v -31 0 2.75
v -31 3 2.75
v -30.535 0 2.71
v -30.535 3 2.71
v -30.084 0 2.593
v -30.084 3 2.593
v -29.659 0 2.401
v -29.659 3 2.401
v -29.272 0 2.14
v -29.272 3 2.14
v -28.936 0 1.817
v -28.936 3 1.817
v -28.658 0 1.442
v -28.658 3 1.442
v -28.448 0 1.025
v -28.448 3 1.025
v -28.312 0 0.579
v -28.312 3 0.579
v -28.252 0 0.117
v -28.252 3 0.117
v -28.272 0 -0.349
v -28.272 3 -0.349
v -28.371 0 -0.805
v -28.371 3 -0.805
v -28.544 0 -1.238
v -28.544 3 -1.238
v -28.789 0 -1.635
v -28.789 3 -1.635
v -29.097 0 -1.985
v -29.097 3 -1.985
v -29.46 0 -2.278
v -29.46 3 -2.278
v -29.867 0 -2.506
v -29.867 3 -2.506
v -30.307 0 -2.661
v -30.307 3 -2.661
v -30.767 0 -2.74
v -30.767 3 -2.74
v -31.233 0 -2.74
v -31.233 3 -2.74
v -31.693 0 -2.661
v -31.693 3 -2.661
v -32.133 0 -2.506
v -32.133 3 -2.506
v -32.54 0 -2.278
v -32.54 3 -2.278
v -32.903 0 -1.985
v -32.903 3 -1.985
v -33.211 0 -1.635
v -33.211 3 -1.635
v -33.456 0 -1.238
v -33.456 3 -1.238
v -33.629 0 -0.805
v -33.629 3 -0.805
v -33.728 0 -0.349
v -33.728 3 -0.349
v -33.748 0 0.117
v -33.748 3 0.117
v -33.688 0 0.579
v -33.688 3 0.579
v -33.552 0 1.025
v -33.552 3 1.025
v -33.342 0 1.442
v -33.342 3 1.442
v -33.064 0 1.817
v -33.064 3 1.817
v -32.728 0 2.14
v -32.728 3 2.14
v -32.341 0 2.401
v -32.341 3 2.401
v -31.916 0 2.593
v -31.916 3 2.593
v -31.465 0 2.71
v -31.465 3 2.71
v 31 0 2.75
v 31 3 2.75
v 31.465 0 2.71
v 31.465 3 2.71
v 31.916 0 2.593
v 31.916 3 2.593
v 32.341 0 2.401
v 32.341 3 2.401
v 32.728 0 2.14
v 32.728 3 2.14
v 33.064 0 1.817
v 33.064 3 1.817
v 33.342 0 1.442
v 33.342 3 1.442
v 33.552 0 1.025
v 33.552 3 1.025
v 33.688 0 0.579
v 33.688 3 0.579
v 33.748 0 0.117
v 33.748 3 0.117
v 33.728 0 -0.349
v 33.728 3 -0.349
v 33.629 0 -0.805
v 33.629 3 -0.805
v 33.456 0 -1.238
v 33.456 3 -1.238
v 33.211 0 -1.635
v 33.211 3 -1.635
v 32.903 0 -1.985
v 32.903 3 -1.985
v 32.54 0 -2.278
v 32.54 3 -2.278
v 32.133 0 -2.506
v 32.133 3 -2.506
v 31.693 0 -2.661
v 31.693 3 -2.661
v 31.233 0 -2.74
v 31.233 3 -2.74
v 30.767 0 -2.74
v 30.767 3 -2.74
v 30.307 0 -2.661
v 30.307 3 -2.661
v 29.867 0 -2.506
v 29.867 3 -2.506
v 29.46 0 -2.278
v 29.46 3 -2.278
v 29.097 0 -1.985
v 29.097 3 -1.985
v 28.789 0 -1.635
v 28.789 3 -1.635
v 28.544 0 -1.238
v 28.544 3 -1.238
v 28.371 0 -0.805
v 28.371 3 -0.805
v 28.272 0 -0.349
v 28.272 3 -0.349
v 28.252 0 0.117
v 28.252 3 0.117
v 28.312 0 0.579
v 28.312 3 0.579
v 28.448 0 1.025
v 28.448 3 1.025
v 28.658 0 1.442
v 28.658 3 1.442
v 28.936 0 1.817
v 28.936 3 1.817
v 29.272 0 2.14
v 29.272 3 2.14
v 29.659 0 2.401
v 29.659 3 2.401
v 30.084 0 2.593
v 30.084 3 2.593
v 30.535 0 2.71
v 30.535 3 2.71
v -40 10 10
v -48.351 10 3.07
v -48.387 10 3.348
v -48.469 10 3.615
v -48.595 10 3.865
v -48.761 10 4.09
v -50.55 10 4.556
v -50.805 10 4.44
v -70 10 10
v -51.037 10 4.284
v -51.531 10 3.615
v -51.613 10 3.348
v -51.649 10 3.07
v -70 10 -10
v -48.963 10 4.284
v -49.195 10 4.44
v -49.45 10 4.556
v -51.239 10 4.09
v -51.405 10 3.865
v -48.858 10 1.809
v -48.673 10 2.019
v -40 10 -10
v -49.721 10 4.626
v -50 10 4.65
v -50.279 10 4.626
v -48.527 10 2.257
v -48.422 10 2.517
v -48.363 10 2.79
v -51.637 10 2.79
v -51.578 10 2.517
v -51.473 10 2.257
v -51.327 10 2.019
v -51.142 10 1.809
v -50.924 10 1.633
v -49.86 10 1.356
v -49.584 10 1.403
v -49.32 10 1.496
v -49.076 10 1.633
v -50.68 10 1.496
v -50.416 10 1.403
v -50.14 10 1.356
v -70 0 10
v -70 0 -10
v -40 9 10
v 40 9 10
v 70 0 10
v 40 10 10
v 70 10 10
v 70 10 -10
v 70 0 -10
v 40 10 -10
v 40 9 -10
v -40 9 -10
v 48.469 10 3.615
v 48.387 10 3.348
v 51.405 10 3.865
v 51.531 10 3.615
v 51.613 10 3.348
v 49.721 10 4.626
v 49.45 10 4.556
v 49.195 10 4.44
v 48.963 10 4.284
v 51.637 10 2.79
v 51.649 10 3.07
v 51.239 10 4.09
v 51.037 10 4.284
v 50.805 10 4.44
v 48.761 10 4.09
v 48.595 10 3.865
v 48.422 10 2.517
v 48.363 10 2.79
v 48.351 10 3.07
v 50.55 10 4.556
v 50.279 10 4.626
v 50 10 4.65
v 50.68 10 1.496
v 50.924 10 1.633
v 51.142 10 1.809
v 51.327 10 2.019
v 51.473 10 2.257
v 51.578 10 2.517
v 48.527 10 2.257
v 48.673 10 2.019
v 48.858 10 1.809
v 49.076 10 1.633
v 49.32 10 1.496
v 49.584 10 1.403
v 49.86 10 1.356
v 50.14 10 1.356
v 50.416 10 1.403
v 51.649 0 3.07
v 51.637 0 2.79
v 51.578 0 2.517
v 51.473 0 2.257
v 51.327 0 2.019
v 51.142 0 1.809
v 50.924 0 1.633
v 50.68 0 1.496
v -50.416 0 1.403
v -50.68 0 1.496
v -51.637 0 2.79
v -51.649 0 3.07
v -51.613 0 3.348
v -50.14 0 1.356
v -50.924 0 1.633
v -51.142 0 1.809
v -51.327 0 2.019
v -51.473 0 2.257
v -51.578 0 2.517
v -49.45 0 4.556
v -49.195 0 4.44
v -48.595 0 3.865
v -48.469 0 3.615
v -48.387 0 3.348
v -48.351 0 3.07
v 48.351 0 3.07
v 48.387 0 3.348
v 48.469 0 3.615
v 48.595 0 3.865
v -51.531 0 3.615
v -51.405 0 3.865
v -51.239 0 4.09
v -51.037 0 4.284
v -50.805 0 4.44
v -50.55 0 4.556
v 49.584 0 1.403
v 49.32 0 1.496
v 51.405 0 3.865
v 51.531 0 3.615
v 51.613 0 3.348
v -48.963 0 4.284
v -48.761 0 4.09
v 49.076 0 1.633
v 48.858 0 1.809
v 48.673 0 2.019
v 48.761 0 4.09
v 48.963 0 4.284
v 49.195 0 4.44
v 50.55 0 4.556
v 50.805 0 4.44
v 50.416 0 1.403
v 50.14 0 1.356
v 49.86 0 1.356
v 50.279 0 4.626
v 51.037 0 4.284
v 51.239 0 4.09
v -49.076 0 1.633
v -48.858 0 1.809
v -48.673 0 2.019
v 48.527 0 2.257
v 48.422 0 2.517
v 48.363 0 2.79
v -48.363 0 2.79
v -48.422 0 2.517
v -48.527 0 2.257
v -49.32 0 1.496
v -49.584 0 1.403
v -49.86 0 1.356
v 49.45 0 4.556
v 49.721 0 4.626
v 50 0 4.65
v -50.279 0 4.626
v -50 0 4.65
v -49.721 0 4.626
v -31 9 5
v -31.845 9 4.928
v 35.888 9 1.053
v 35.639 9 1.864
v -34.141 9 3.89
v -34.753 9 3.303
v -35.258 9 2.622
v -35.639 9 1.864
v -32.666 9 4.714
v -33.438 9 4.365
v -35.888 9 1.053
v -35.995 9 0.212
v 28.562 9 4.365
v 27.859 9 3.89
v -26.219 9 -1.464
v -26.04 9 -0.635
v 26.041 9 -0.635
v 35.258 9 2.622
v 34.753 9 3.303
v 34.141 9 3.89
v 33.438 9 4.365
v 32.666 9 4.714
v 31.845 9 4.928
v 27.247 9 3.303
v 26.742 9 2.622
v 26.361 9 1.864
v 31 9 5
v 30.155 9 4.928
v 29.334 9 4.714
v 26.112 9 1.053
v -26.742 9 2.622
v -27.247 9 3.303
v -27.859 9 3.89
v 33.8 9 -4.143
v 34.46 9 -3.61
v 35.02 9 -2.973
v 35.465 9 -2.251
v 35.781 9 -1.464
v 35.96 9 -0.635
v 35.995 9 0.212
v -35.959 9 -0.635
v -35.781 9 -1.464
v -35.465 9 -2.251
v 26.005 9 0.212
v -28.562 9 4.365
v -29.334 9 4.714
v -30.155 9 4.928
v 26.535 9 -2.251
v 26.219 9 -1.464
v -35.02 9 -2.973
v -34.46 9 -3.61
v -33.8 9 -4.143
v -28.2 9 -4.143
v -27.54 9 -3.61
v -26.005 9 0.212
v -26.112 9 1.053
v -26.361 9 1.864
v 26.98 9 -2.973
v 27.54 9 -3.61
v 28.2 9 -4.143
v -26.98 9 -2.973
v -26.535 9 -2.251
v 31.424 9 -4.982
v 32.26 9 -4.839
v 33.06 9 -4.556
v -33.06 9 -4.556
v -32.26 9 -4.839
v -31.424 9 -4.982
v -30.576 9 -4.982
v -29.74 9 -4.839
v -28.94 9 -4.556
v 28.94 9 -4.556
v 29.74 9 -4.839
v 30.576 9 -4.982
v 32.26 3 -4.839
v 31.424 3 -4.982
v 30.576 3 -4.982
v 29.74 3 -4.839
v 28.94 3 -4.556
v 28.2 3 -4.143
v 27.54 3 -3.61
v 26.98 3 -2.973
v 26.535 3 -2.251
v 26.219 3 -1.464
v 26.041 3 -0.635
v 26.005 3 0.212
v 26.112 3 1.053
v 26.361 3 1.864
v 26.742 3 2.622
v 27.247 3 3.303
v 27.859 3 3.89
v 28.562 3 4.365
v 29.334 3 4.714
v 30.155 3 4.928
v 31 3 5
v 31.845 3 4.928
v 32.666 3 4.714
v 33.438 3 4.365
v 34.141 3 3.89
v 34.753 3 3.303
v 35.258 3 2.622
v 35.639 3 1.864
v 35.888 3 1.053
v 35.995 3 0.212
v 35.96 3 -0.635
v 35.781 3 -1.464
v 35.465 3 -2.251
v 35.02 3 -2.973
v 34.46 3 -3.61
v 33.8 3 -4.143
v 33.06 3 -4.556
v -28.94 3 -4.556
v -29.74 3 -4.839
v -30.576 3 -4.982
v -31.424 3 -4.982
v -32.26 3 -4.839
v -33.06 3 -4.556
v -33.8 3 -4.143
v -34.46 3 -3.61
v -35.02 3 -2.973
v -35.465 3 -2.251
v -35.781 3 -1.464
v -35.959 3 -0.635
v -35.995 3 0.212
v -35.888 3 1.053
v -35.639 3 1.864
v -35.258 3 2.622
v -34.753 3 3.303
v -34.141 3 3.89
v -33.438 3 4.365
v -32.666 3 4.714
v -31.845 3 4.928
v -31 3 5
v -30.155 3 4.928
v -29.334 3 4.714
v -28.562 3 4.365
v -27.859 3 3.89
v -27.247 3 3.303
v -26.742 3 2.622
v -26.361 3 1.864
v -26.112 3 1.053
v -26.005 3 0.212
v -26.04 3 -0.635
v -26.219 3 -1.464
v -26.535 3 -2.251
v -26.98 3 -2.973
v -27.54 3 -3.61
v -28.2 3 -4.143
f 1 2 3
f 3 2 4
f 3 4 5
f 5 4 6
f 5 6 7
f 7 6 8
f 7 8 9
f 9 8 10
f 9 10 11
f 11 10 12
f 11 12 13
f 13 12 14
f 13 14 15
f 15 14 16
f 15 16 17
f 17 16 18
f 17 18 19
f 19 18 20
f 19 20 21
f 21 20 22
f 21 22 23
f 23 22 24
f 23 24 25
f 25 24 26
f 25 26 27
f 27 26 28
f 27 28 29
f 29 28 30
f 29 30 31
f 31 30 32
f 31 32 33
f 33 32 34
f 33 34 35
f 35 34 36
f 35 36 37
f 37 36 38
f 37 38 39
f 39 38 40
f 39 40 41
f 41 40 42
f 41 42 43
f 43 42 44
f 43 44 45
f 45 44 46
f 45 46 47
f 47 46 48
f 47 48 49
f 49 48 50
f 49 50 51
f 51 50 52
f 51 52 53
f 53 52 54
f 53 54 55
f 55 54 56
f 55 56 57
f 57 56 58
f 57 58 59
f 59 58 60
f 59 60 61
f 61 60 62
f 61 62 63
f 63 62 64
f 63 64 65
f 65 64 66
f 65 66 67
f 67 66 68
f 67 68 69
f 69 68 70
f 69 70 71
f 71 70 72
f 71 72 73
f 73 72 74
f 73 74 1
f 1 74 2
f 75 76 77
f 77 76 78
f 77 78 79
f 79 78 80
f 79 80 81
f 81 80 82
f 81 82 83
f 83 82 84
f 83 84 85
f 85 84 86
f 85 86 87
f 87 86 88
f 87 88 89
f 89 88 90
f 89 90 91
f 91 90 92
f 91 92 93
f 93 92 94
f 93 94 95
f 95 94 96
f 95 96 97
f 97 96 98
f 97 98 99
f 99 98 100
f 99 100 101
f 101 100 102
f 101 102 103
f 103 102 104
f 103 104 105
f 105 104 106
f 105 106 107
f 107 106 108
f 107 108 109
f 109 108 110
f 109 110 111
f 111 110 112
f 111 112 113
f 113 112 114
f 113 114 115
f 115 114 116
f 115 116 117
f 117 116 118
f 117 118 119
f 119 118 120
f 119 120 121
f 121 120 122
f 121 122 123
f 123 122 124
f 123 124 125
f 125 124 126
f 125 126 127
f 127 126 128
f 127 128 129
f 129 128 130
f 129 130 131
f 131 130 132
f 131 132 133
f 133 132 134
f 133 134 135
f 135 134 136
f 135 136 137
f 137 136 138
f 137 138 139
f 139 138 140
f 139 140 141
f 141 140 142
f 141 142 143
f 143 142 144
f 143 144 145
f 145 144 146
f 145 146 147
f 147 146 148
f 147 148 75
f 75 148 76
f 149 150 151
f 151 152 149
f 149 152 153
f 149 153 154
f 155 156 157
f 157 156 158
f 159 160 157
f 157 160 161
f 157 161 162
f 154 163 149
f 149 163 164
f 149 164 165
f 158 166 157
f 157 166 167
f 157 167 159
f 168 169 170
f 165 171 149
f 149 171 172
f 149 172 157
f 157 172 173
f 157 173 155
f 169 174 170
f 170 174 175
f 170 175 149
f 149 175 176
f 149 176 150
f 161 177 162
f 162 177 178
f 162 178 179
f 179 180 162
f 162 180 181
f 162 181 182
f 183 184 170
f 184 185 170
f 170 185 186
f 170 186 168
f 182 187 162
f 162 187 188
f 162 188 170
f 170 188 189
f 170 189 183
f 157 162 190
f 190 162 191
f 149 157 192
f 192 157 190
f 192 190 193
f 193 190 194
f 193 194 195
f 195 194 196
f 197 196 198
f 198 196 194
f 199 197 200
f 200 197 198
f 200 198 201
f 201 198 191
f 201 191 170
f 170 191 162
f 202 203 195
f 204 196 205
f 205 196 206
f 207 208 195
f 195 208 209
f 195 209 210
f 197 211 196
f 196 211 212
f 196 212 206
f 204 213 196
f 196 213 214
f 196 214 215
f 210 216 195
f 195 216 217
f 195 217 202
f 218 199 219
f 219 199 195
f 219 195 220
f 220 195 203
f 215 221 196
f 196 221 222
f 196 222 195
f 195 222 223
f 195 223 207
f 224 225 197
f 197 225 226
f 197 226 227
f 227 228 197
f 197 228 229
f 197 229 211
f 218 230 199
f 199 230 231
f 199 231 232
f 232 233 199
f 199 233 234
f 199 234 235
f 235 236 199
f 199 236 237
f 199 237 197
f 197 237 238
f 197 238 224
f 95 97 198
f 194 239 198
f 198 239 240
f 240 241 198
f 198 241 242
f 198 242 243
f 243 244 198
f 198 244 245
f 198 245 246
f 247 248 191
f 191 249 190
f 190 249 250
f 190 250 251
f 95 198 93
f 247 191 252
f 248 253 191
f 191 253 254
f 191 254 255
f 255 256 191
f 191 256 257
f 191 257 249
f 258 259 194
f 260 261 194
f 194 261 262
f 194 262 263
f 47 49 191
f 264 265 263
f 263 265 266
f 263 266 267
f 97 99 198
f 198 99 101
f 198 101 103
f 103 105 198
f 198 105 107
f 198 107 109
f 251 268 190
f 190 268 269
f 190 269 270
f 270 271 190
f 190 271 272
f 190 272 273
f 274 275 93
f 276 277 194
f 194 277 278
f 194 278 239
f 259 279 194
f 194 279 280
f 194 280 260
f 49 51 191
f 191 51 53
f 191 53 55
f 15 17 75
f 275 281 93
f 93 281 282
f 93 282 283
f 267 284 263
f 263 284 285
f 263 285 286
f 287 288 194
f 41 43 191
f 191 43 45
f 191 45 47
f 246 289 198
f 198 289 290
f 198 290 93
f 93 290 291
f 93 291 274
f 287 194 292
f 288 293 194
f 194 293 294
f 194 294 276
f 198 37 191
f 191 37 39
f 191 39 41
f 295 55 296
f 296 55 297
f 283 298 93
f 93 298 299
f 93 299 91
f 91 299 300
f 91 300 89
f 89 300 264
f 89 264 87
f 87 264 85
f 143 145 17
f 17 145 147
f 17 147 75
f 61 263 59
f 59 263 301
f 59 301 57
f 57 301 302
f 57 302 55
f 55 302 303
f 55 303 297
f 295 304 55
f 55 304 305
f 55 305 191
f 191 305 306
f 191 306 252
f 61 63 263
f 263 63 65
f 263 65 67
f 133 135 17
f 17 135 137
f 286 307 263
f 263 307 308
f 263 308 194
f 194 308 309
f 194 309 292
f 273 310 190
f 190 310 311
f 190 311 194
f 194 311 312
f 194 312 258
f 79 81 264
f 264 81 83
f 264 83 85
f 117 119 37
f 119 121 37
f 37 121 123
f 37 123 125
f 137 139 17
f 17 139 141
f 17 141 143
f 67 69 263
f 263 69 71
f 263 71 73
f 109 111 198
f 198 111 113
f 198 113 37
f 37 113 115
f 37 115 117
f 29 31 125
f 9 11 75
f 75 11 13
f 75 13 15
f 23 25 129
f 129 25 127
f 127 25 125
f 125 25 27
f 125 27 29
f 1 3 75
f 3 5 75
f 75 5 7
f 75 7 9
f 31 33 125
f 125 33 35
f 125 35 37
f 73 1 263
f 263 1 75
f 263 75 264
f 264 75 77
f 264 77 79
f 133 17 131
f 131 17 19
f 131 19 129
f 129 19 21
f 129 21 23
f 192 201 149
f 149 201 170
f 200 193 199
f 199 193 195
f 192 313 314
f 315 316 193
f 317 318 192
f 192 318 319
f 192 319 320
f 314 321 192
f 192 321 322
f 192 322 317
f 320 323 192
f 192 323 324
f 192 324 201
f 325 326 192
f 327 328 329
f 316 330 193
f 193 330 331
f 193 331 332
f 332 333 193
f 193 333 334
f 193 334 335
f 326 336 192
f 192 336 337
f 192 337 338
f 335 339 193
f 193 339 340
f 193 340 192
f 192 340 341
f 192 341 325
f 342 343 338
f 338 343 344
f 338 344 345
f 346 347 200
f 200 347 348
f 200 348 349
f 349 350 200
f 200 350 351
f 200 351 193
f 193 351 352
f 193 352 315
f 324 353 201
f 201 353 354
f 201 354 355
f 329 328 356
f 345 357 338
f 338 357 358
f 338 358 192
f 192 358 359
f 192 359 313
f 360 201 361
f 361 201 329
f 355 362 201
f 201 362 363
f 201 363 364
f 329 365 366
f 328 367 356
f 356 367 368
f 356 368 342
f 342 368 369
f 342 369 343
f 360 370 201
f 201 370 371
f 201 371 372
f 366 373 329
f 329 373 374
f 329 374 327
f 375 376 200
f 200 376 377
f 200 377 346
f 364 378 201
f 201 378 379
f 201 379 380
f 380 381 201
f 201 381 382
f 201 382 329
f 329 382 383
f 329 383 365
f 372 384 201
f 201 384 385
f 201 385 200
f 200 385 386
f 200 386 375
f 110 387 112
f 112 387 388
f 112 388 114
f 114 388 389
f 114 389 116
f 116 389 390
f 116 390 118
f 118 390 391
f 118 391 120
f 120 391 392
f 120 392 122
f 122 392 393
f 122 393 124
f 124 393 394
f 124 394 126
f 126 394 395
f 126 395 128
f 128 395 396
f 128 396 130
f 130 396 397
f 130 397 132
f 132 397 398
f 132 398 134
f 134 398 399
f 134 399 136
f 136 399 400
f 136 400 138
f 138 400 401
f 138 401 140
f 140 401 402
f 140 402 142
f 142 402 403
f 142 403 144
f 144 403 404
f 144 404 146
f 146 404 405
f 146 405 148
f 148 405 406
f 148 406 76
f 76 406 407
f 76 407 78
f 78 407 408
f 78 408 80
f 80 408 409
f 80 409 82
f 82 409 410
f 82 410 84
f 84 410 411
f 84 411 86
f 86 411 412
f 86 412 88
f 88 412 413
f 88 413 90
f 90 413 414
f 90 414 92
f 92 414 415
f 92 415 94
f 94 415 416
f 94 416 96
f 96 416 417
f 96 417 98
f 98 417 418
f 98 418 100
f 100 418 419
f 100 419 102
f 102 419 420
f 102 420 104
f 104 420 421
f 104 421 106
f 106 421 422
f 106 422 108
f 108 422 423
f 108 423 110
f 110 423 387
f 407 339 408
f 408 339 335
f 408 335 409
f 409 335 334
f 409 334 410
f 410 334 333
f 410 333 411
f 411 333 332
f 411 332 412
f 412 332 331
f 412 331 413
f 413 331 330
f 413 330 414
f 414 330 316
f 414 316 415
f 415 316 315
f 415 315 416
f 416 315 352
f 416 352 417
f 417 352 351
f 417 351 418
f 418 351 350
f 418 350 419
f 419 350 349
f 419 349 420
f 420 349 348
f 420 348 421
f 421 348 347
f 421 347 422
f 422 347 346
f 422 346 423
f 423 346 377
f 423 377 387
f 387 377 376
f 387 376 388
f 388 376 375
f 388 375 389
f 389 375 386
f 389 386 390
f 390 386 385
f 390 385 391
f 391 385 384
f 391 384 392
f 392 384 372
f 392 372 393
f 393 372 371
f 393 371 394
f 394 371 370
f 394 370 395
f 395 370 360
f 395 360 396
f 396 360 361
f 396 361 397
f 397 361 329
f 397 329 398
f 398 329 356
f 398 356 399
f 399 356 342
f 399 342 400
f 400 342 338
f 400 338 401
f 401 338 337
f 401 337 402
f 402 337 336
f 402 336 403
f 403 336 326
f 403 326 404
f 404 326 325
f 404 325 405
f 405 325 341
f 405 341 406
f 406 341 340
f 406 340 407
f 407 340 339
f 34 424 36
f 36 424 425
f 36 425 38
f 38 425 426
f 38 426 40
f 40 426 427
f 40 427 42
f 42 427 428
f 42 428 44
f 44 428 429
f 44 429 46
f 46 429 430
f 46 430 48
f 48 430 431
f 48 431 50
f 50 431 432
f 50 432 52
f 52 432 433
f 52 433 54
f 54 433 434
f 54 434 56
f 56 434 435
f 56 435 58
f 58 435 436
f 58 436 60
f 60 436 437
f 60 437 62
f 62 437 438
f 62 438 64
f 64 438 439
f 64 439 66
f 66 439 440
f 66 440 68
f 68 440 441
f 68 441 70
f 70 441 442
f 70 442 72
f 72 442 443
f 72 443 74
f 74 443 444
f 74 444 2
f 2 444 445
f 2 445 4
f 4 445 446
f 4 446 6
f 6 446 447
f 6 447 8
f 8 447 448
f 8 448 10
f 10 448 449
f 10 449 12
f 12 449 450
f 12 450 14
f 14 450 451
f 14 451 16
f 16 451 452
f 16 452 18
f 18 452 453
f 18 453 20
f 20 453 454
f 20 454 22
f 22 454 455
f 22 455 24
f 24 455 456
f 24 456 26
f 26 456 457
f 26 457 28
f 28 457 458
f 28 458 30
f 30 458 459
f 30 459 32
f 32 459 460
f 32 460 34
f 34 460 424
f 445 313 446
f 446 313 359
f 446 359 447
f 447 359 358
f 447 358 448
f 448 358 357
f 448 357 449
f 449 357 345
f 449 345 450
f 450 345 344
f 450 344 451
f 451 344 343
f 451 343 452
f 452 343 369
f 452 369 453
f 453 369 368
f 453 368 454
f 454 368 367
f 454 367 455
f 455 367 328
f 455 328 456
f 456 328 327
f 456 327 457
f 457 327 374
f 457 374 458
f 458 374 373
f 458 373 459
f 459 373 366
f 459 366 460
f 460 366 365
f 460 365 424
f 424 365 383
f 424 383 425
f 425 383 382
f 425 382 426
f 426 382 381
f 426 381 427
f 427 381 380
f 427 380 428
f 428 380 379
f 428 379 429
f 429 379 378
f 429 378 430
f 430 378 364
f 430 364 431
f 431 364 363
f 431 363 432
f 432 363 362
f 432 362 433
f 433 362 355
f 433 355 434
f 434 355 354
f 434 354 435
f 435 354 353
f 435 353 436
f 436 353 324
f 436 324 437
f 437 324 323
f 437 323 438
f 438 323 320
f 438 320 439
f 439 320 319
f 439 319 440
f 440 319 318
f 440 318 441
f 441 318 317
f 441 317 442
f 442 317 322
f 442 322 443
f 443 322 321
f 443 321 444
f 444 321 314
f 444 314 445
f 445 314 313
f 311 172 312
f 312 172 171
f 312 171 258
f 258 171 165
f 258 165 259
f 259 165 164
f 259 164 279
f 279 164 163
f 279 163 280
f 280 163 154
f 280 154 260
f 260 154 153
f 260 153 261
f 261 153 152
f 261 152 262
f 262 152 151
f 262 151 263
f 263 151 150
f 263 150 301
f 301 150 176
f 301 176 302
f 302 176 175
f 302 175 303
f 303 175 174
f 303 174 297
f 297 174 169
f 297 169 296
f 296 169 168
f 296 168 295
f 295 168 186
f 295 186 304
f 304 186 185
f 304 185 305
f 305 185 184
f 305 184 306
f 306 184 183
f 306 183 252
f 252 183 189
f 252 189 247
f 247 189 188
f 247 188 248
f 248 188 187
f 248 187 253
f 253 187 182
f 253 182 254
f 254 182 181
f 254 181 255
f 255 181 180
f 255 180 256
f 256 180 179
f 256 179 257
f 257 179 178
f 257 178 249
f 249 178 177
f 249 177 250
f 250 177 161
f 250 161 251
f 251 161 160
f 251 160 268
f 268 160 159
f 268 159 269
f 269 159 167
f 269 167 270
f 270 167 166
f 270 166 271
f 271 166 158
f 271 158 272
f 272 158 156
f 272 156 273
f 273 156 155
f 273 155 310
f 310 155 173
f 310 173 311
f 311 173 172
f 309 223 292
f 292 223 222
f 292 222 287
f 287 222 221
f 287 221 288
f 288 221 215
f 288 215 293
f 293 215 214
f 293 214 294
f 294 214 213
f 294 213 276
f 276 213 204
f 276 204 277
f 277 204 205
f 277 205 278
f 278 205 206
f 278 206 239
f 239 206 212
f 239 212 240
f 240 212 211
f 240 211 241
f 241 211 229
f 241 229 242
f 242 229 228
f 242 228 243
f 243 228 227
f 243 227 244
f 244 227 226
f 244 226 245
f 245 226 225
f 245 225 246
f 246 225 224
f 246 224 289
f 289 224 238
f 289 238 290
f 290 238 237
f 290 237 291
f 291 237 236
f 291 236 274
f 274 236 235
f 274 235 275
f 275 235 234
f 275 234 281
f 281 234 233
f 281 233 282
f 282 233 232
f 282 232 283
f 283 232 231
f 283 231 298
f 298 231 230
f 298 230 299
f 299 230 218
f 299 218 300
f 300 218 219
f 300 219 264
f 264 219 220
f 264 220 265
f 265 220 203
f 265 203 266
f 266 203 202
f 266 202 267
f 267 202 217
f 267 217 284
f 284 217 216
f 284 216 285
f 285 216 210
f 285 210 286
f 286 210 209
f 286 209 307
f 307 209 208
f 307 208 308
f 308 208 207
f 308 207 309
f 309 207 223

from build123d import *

# Parameters (mm, degrees)
SKETCH1_W           = 140
SKETCH1_H           = 20
BOSS_EXTRUDE1_DEPTH = 10
SKETCH2_W           = 80
SKETCH2_H           = 20
CUT_EXTRUDE1_DEPTH  = 1
SKETCH3_R           = 2.75
CUT_EXTRUDE2_DEPTH  = 9
SKETCH4_R           = 5
CUT_EXTRUDE3_DEPTH  = 6
SKETCH5_R           = 1.65
CUT_EXTRUDE4_DEPTH  = 10


with BuildPart() as part:
    # Sketch1 → Boss-Extrude1 (new body)
    with BuildSketch(Plane(origin=(0, 0, 0), x_dir=(1, 0, 0), z_dir=(0, 1, 0))):
        Rectangle(SKETCH1_W, SKETCH1_H)
    extrude(amount=BOSS_EXTRUDE1_DEPTH)

    # Sketch2 → Cut-Extrude1 (cut)
    with BuildSketch(Plane(origin=(0, 10, 0), x_dir=(1, 0, 0), z_dir=(0, 1, 0))):
        Rectangle(SKETCH2_W, SKETCH2_H)
    extrude(amount=-CUT_EXTRUDE1_DEPTH, mode=Mode.SUBTRACT)

    # Sketch3 → Cut-Extrude2 (cut)
    with BuildSketch(Plane(origin=(0, 9, 0), x_dir=(1, 0, 0), z_dir=(0, 1, 0))):
        with Locations(Location((31, 0, 0), (0, 0, 270))):
            Circle(SKETCH3_R)
        with Locations(Location((-31, 0, 0), (0, 0, 270))):
            Circle(SKETCH3_R)
    extrude(amount=-CUT_EXTRUDE2_DEPTH, mode=Mode.SUBTRACT)

    # Sketch4 → Cut-Extrude3 (cut)
    with BuildSketch(Plane(origin=(0, 9, 0), x_dir=(1, 0, 0), z_dir=(0, 1, 0))):
        with Locations(Location((31, 0, 0), (0, 0, 270))):
            Circle(SKETCH4_R)
        with Locations(Location((-31, 0, 0), (0, 0, 270))):
            Circle(SKETCH4_R)
    extrude(amount=-CUT_EXTRUDE3_DEPTH, mode=Mode.SUBTRACT)

    # Sketch5 → Cut-Extrude4 (cut)
    with BuildSketch(Plane(origin=(0, 10, 0), x_dir=(1, 0, 0), z_dir=(0, 1, 0))):
        with Locations(Location((-50, -3, 0), (0, 0, 270))):
            Circle(SKETCH5_R)
        with Locations(Location((50, -3, 0), (0, 0, 270))):
            Circle(SKETCH5_R)
    extrude(amount=-CUT_EXTRUDE4_DEPTH, mode=Mode.SUBTRACT)


solid = part.part
